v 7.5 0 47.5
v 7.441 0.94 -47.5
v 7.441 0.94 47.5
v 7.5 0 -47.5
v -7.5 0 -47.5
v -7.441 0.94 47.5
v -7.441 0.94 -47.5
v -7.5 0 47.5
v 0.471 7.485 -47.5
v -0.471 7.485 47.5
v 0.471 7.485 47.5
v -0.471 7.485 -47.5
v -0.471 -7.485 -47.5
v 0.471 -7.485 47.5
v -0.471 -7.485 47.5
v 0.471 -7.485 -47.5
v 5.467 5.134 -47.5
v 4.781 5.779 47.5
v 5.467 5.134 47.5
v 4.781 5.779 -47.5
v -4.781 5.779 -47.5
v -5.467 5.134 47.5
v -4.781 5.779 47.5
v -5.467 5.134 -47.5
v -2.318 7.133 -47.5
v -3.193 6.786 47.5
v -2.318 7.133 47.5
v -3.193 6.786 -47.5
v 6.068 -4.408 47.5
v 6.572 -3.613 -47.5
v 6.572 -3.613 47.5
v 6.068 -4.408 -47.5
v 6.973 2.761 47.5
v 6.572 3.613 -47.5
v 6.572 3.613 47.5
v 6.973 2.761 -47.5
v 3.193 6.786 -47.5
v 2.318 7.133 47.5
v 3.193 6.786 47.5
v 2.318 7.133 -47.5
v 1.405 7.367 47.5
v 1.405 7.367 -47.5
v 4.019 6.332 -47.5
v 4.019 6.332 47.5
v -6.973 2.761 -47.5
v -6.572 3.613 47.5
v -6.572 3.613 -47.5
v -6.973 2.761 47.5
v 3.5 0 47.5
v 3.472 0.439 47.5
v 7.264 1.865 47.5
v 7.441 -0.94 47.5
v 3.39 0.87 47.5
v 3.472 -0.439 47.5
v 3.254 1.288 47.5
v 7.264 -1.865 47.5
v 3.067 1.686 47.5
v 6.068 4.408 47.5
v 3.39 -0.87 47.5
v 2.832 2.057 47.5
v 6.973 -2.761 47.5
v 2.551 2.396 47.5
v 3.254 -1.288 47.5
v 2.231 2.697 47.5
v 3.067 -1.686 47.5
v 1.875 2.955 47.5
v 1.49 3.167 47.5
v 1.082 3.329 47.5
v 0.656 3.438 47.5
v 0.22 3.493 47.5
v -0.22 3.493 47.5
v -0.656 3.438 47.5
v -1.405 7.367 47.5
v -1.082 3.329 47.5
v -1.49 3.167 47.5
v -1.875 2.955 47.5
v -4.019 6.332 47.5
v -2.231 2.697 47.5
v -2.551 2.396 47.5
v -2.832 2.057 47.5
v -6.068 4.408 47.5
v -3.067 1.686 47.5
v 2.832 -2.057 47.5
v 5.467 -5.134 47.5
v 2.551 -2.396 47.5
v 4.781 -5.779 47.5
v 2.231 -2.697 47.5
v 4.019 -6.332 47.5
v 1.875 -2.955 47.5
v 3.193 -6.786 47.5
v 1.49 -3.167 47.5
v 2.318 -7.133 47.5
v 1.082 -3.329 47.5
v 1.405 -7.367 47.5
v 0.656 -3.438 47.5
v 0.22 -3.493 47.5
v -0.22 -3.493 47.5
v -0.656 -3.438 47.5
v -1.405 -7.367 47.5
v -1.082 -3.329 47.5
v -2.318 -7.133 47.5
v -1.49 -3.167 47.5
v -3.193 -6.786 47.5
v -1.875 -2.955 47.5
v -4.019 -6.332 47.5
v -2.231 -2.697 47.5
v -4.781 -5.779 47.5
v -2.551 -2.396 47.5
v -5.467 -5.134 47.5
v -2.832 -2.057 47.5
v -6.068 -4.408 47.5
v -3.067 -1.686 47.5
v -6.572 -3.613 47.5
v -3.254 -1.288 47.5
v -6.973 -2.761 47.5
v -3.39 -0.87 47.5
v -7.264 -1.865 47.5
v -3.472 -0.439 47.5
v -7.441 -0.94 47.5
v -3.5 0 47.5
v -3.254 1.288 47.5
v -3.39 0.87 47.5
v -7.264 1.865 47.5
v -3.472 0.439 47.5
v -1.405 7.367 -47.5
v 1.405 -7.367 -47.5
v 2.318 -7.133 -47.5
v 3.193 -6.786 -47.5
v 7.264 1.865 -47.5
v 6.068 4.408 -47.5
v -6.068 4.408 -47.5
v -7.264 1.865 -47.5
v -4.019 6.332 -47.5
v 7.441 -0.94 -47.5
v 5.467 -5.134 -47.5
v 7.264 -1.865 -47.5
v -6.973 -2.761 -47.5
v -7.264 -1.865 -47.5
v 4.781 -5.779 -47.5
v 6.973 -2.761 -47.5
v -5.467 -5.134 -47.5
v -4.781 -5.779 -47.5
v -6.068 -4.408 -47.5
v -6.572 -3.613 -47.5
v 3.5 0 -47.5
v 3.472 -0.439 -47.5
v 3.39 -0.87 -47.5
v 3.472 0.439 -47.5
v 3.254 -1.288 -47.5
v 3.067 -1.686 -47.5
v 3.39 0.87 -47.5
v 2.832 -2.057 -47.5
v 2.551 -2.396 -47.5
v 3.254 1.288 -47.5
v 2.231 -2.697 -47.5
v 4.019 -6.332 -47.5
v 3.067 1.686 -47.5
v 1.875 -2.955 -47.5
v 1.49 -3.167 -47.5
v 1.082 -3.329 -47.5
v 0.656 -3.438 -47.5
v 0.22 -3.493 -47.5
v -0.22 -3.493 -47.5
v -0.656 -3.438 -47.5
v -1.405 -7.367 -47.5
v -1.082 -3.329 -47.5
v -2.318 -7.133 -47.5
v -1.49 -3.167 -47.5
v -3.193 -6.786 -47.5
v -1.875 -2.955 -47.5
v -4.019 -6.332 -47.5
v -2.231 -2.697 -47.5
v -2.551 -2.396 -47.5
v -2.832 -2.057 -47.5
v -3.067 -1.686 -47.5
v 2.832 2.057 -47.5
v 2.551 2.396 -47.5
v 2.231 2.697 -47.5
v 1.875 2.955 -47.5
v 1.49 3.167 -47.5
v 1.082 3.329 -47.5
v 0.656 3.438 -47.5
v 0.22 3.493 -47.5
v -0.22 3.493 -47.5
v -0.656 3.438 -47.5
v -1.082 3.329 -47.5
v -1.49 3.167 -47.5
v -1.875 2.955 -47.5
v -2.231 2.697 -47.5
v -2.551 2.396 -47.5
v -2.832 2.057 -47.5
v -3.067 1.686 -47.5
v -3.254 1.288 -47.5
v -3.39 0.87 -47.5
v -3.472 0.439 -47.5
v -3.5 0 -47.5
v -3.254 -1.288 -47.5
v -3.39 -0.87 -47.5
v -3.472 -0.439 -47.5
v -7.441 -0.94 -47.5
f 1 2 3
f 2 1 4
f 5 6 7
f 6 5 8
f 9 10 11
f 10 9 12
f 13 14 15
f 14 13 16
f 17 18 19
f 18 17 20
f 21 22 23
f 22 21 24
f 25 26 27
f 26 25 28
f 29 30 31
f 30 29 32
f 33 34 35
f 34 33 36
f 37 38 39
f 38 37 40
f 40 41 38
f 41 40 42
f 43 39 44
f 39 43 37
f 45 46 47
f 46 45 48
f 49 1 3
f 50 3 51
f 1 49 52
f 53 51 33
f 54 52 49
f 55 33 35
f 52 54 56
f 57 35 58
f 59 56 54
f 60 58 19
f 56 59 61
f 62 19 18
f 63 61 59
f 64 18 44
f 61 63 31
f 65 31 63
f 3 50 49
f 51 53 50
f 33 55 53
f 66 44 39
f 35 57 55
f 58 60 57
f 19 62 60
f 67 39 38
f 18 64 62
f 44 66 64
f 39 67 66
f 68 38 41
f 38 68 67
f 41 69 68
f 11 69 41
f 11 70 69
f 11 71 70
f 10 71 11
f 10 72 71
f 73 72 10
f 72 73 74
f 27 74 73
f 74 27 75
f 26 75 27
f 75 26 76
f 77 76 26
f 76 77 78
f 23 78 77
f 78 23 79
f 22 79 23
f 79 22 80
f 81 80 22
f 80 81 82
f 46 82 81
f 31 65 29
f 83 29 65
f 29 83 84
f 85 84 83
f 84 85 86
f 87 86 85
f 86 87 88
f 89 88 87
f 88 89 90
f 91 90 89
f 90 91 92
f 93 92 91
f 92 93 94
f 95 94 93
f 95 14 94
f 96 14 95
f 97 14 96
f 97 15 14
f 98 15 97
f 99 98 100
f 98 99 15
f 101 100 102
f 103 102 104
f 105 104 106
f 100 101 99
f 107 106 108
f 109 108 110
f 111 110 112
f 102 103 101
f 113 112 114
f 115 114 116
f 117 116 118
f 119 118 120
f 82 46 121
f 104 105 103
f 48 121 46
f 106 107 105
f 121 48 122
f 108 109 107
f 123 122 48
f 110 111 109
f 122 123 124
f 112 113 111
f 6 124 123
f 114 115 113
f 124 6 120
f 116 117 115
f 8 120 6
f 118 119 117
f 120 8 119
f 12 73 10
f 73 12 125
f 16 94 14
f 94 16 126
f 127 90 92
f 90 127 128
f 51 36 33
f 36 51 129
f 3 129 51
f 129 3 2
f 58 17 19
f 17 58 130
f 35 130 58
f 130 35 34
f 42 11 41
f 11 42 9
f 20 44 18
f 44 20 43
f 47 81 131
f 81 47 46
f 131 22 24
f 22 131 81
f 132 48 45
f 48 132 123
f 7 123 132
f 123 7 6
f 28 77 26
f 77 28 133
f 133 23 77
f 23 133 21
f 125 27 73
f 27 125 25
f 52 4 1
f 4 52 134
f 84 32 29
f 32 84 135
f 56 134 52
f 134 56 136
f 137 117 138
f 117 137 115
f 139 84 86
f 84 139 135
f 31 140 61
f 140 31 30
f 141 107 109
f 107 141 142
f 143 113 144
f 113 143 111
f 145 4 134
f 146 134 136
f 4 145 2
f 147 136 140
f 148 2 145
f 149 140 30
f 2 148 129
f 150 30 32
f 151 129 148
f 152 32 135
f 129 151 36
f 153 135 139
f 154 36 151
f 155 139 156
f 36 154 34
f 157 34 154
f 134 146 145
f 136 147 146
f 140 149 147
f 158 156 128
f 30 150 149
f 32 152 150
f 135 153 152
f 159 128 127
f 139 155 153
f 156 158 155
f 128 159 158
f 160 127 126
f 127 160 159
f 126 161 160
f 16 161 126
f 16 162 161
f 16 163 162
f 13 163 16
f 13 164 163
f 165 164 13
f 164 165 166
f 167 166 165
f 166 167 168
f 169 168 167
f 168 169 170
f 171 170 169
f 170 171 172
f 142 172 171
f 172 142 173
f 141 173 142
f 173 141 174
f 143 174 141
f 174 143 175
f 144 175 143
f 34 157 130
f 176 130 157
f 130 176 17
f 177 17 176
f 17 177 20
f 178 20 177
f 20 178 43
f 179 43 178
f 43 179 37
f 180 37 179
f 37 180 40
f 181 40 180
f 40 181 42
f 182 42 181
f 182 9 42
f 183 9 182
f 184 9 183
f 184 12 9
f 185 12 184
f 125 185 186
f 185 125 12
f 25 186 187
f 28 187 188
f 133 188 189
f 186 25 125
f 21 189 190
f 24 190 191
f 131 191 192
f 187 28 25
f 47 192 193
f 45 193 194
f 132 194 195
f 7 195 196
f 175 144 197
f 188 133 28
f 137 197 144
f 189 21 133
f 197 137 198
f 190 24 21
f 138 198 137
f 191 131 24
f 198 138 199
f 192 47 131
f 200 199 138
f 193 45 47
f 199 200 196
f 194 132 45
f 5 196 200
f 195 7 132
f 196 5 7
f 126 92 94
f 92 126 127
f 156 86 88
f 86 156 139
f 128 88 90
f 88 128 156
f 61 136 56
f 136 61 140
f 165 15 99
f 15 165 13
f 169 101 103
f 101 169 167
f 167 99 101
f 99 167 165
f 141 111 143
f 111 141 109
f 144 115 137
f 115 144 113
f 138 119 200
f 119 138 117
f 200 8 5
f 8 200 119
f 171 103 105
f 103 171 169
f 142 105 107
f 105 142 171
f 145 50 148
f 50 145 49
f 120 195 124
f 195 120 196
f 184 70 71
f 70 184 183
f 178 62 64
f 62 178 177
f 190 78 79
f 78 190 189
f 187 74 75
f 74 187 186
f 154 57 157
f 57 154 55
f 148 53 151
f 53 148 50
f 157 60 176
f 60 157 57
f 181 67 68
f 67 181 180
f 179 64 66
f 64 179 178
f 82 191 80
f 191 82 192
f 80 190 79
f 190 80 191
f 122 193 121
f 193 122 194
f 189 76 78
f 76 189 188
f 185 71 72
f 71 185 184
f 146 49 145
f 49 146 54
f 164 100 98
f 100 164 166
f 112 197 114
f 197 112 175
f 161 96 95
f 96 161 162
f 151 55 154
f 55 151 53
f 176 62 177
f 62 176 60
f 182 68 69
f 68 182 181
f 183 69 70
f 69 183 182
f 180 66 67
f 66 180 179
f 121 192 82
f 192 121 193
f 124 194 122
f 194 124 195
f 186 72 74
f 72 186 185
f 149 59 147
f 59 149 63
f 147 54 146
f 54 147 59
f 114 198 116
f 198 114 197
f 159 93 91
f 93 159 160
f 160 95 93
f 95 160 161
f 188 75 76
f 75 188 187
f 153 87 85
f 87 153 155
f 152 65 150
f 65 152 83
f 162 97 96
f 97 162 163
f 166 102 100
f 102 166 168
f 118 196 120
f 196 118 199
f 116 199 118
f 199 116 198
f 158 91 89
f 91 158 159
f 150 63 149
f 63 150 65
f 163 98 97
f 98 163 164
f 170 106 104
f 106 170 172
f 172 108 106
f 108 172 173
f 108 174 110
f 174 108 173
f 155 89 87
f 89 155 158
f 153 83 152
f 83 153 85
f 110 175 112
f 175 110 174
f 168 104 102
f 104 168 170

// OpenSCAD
$fn = 50;


difference() {
	union() {
		translate(v = [0, 0, -47.5000000000]) {
			cylinder(h = 95, r = 7.5000000000);
		}
	}
	union() {
		translate(v = [0, 0, -100.0000000000]) {
			cylinder(h = 200, r = 3.5000000000);
		}
	}
}
